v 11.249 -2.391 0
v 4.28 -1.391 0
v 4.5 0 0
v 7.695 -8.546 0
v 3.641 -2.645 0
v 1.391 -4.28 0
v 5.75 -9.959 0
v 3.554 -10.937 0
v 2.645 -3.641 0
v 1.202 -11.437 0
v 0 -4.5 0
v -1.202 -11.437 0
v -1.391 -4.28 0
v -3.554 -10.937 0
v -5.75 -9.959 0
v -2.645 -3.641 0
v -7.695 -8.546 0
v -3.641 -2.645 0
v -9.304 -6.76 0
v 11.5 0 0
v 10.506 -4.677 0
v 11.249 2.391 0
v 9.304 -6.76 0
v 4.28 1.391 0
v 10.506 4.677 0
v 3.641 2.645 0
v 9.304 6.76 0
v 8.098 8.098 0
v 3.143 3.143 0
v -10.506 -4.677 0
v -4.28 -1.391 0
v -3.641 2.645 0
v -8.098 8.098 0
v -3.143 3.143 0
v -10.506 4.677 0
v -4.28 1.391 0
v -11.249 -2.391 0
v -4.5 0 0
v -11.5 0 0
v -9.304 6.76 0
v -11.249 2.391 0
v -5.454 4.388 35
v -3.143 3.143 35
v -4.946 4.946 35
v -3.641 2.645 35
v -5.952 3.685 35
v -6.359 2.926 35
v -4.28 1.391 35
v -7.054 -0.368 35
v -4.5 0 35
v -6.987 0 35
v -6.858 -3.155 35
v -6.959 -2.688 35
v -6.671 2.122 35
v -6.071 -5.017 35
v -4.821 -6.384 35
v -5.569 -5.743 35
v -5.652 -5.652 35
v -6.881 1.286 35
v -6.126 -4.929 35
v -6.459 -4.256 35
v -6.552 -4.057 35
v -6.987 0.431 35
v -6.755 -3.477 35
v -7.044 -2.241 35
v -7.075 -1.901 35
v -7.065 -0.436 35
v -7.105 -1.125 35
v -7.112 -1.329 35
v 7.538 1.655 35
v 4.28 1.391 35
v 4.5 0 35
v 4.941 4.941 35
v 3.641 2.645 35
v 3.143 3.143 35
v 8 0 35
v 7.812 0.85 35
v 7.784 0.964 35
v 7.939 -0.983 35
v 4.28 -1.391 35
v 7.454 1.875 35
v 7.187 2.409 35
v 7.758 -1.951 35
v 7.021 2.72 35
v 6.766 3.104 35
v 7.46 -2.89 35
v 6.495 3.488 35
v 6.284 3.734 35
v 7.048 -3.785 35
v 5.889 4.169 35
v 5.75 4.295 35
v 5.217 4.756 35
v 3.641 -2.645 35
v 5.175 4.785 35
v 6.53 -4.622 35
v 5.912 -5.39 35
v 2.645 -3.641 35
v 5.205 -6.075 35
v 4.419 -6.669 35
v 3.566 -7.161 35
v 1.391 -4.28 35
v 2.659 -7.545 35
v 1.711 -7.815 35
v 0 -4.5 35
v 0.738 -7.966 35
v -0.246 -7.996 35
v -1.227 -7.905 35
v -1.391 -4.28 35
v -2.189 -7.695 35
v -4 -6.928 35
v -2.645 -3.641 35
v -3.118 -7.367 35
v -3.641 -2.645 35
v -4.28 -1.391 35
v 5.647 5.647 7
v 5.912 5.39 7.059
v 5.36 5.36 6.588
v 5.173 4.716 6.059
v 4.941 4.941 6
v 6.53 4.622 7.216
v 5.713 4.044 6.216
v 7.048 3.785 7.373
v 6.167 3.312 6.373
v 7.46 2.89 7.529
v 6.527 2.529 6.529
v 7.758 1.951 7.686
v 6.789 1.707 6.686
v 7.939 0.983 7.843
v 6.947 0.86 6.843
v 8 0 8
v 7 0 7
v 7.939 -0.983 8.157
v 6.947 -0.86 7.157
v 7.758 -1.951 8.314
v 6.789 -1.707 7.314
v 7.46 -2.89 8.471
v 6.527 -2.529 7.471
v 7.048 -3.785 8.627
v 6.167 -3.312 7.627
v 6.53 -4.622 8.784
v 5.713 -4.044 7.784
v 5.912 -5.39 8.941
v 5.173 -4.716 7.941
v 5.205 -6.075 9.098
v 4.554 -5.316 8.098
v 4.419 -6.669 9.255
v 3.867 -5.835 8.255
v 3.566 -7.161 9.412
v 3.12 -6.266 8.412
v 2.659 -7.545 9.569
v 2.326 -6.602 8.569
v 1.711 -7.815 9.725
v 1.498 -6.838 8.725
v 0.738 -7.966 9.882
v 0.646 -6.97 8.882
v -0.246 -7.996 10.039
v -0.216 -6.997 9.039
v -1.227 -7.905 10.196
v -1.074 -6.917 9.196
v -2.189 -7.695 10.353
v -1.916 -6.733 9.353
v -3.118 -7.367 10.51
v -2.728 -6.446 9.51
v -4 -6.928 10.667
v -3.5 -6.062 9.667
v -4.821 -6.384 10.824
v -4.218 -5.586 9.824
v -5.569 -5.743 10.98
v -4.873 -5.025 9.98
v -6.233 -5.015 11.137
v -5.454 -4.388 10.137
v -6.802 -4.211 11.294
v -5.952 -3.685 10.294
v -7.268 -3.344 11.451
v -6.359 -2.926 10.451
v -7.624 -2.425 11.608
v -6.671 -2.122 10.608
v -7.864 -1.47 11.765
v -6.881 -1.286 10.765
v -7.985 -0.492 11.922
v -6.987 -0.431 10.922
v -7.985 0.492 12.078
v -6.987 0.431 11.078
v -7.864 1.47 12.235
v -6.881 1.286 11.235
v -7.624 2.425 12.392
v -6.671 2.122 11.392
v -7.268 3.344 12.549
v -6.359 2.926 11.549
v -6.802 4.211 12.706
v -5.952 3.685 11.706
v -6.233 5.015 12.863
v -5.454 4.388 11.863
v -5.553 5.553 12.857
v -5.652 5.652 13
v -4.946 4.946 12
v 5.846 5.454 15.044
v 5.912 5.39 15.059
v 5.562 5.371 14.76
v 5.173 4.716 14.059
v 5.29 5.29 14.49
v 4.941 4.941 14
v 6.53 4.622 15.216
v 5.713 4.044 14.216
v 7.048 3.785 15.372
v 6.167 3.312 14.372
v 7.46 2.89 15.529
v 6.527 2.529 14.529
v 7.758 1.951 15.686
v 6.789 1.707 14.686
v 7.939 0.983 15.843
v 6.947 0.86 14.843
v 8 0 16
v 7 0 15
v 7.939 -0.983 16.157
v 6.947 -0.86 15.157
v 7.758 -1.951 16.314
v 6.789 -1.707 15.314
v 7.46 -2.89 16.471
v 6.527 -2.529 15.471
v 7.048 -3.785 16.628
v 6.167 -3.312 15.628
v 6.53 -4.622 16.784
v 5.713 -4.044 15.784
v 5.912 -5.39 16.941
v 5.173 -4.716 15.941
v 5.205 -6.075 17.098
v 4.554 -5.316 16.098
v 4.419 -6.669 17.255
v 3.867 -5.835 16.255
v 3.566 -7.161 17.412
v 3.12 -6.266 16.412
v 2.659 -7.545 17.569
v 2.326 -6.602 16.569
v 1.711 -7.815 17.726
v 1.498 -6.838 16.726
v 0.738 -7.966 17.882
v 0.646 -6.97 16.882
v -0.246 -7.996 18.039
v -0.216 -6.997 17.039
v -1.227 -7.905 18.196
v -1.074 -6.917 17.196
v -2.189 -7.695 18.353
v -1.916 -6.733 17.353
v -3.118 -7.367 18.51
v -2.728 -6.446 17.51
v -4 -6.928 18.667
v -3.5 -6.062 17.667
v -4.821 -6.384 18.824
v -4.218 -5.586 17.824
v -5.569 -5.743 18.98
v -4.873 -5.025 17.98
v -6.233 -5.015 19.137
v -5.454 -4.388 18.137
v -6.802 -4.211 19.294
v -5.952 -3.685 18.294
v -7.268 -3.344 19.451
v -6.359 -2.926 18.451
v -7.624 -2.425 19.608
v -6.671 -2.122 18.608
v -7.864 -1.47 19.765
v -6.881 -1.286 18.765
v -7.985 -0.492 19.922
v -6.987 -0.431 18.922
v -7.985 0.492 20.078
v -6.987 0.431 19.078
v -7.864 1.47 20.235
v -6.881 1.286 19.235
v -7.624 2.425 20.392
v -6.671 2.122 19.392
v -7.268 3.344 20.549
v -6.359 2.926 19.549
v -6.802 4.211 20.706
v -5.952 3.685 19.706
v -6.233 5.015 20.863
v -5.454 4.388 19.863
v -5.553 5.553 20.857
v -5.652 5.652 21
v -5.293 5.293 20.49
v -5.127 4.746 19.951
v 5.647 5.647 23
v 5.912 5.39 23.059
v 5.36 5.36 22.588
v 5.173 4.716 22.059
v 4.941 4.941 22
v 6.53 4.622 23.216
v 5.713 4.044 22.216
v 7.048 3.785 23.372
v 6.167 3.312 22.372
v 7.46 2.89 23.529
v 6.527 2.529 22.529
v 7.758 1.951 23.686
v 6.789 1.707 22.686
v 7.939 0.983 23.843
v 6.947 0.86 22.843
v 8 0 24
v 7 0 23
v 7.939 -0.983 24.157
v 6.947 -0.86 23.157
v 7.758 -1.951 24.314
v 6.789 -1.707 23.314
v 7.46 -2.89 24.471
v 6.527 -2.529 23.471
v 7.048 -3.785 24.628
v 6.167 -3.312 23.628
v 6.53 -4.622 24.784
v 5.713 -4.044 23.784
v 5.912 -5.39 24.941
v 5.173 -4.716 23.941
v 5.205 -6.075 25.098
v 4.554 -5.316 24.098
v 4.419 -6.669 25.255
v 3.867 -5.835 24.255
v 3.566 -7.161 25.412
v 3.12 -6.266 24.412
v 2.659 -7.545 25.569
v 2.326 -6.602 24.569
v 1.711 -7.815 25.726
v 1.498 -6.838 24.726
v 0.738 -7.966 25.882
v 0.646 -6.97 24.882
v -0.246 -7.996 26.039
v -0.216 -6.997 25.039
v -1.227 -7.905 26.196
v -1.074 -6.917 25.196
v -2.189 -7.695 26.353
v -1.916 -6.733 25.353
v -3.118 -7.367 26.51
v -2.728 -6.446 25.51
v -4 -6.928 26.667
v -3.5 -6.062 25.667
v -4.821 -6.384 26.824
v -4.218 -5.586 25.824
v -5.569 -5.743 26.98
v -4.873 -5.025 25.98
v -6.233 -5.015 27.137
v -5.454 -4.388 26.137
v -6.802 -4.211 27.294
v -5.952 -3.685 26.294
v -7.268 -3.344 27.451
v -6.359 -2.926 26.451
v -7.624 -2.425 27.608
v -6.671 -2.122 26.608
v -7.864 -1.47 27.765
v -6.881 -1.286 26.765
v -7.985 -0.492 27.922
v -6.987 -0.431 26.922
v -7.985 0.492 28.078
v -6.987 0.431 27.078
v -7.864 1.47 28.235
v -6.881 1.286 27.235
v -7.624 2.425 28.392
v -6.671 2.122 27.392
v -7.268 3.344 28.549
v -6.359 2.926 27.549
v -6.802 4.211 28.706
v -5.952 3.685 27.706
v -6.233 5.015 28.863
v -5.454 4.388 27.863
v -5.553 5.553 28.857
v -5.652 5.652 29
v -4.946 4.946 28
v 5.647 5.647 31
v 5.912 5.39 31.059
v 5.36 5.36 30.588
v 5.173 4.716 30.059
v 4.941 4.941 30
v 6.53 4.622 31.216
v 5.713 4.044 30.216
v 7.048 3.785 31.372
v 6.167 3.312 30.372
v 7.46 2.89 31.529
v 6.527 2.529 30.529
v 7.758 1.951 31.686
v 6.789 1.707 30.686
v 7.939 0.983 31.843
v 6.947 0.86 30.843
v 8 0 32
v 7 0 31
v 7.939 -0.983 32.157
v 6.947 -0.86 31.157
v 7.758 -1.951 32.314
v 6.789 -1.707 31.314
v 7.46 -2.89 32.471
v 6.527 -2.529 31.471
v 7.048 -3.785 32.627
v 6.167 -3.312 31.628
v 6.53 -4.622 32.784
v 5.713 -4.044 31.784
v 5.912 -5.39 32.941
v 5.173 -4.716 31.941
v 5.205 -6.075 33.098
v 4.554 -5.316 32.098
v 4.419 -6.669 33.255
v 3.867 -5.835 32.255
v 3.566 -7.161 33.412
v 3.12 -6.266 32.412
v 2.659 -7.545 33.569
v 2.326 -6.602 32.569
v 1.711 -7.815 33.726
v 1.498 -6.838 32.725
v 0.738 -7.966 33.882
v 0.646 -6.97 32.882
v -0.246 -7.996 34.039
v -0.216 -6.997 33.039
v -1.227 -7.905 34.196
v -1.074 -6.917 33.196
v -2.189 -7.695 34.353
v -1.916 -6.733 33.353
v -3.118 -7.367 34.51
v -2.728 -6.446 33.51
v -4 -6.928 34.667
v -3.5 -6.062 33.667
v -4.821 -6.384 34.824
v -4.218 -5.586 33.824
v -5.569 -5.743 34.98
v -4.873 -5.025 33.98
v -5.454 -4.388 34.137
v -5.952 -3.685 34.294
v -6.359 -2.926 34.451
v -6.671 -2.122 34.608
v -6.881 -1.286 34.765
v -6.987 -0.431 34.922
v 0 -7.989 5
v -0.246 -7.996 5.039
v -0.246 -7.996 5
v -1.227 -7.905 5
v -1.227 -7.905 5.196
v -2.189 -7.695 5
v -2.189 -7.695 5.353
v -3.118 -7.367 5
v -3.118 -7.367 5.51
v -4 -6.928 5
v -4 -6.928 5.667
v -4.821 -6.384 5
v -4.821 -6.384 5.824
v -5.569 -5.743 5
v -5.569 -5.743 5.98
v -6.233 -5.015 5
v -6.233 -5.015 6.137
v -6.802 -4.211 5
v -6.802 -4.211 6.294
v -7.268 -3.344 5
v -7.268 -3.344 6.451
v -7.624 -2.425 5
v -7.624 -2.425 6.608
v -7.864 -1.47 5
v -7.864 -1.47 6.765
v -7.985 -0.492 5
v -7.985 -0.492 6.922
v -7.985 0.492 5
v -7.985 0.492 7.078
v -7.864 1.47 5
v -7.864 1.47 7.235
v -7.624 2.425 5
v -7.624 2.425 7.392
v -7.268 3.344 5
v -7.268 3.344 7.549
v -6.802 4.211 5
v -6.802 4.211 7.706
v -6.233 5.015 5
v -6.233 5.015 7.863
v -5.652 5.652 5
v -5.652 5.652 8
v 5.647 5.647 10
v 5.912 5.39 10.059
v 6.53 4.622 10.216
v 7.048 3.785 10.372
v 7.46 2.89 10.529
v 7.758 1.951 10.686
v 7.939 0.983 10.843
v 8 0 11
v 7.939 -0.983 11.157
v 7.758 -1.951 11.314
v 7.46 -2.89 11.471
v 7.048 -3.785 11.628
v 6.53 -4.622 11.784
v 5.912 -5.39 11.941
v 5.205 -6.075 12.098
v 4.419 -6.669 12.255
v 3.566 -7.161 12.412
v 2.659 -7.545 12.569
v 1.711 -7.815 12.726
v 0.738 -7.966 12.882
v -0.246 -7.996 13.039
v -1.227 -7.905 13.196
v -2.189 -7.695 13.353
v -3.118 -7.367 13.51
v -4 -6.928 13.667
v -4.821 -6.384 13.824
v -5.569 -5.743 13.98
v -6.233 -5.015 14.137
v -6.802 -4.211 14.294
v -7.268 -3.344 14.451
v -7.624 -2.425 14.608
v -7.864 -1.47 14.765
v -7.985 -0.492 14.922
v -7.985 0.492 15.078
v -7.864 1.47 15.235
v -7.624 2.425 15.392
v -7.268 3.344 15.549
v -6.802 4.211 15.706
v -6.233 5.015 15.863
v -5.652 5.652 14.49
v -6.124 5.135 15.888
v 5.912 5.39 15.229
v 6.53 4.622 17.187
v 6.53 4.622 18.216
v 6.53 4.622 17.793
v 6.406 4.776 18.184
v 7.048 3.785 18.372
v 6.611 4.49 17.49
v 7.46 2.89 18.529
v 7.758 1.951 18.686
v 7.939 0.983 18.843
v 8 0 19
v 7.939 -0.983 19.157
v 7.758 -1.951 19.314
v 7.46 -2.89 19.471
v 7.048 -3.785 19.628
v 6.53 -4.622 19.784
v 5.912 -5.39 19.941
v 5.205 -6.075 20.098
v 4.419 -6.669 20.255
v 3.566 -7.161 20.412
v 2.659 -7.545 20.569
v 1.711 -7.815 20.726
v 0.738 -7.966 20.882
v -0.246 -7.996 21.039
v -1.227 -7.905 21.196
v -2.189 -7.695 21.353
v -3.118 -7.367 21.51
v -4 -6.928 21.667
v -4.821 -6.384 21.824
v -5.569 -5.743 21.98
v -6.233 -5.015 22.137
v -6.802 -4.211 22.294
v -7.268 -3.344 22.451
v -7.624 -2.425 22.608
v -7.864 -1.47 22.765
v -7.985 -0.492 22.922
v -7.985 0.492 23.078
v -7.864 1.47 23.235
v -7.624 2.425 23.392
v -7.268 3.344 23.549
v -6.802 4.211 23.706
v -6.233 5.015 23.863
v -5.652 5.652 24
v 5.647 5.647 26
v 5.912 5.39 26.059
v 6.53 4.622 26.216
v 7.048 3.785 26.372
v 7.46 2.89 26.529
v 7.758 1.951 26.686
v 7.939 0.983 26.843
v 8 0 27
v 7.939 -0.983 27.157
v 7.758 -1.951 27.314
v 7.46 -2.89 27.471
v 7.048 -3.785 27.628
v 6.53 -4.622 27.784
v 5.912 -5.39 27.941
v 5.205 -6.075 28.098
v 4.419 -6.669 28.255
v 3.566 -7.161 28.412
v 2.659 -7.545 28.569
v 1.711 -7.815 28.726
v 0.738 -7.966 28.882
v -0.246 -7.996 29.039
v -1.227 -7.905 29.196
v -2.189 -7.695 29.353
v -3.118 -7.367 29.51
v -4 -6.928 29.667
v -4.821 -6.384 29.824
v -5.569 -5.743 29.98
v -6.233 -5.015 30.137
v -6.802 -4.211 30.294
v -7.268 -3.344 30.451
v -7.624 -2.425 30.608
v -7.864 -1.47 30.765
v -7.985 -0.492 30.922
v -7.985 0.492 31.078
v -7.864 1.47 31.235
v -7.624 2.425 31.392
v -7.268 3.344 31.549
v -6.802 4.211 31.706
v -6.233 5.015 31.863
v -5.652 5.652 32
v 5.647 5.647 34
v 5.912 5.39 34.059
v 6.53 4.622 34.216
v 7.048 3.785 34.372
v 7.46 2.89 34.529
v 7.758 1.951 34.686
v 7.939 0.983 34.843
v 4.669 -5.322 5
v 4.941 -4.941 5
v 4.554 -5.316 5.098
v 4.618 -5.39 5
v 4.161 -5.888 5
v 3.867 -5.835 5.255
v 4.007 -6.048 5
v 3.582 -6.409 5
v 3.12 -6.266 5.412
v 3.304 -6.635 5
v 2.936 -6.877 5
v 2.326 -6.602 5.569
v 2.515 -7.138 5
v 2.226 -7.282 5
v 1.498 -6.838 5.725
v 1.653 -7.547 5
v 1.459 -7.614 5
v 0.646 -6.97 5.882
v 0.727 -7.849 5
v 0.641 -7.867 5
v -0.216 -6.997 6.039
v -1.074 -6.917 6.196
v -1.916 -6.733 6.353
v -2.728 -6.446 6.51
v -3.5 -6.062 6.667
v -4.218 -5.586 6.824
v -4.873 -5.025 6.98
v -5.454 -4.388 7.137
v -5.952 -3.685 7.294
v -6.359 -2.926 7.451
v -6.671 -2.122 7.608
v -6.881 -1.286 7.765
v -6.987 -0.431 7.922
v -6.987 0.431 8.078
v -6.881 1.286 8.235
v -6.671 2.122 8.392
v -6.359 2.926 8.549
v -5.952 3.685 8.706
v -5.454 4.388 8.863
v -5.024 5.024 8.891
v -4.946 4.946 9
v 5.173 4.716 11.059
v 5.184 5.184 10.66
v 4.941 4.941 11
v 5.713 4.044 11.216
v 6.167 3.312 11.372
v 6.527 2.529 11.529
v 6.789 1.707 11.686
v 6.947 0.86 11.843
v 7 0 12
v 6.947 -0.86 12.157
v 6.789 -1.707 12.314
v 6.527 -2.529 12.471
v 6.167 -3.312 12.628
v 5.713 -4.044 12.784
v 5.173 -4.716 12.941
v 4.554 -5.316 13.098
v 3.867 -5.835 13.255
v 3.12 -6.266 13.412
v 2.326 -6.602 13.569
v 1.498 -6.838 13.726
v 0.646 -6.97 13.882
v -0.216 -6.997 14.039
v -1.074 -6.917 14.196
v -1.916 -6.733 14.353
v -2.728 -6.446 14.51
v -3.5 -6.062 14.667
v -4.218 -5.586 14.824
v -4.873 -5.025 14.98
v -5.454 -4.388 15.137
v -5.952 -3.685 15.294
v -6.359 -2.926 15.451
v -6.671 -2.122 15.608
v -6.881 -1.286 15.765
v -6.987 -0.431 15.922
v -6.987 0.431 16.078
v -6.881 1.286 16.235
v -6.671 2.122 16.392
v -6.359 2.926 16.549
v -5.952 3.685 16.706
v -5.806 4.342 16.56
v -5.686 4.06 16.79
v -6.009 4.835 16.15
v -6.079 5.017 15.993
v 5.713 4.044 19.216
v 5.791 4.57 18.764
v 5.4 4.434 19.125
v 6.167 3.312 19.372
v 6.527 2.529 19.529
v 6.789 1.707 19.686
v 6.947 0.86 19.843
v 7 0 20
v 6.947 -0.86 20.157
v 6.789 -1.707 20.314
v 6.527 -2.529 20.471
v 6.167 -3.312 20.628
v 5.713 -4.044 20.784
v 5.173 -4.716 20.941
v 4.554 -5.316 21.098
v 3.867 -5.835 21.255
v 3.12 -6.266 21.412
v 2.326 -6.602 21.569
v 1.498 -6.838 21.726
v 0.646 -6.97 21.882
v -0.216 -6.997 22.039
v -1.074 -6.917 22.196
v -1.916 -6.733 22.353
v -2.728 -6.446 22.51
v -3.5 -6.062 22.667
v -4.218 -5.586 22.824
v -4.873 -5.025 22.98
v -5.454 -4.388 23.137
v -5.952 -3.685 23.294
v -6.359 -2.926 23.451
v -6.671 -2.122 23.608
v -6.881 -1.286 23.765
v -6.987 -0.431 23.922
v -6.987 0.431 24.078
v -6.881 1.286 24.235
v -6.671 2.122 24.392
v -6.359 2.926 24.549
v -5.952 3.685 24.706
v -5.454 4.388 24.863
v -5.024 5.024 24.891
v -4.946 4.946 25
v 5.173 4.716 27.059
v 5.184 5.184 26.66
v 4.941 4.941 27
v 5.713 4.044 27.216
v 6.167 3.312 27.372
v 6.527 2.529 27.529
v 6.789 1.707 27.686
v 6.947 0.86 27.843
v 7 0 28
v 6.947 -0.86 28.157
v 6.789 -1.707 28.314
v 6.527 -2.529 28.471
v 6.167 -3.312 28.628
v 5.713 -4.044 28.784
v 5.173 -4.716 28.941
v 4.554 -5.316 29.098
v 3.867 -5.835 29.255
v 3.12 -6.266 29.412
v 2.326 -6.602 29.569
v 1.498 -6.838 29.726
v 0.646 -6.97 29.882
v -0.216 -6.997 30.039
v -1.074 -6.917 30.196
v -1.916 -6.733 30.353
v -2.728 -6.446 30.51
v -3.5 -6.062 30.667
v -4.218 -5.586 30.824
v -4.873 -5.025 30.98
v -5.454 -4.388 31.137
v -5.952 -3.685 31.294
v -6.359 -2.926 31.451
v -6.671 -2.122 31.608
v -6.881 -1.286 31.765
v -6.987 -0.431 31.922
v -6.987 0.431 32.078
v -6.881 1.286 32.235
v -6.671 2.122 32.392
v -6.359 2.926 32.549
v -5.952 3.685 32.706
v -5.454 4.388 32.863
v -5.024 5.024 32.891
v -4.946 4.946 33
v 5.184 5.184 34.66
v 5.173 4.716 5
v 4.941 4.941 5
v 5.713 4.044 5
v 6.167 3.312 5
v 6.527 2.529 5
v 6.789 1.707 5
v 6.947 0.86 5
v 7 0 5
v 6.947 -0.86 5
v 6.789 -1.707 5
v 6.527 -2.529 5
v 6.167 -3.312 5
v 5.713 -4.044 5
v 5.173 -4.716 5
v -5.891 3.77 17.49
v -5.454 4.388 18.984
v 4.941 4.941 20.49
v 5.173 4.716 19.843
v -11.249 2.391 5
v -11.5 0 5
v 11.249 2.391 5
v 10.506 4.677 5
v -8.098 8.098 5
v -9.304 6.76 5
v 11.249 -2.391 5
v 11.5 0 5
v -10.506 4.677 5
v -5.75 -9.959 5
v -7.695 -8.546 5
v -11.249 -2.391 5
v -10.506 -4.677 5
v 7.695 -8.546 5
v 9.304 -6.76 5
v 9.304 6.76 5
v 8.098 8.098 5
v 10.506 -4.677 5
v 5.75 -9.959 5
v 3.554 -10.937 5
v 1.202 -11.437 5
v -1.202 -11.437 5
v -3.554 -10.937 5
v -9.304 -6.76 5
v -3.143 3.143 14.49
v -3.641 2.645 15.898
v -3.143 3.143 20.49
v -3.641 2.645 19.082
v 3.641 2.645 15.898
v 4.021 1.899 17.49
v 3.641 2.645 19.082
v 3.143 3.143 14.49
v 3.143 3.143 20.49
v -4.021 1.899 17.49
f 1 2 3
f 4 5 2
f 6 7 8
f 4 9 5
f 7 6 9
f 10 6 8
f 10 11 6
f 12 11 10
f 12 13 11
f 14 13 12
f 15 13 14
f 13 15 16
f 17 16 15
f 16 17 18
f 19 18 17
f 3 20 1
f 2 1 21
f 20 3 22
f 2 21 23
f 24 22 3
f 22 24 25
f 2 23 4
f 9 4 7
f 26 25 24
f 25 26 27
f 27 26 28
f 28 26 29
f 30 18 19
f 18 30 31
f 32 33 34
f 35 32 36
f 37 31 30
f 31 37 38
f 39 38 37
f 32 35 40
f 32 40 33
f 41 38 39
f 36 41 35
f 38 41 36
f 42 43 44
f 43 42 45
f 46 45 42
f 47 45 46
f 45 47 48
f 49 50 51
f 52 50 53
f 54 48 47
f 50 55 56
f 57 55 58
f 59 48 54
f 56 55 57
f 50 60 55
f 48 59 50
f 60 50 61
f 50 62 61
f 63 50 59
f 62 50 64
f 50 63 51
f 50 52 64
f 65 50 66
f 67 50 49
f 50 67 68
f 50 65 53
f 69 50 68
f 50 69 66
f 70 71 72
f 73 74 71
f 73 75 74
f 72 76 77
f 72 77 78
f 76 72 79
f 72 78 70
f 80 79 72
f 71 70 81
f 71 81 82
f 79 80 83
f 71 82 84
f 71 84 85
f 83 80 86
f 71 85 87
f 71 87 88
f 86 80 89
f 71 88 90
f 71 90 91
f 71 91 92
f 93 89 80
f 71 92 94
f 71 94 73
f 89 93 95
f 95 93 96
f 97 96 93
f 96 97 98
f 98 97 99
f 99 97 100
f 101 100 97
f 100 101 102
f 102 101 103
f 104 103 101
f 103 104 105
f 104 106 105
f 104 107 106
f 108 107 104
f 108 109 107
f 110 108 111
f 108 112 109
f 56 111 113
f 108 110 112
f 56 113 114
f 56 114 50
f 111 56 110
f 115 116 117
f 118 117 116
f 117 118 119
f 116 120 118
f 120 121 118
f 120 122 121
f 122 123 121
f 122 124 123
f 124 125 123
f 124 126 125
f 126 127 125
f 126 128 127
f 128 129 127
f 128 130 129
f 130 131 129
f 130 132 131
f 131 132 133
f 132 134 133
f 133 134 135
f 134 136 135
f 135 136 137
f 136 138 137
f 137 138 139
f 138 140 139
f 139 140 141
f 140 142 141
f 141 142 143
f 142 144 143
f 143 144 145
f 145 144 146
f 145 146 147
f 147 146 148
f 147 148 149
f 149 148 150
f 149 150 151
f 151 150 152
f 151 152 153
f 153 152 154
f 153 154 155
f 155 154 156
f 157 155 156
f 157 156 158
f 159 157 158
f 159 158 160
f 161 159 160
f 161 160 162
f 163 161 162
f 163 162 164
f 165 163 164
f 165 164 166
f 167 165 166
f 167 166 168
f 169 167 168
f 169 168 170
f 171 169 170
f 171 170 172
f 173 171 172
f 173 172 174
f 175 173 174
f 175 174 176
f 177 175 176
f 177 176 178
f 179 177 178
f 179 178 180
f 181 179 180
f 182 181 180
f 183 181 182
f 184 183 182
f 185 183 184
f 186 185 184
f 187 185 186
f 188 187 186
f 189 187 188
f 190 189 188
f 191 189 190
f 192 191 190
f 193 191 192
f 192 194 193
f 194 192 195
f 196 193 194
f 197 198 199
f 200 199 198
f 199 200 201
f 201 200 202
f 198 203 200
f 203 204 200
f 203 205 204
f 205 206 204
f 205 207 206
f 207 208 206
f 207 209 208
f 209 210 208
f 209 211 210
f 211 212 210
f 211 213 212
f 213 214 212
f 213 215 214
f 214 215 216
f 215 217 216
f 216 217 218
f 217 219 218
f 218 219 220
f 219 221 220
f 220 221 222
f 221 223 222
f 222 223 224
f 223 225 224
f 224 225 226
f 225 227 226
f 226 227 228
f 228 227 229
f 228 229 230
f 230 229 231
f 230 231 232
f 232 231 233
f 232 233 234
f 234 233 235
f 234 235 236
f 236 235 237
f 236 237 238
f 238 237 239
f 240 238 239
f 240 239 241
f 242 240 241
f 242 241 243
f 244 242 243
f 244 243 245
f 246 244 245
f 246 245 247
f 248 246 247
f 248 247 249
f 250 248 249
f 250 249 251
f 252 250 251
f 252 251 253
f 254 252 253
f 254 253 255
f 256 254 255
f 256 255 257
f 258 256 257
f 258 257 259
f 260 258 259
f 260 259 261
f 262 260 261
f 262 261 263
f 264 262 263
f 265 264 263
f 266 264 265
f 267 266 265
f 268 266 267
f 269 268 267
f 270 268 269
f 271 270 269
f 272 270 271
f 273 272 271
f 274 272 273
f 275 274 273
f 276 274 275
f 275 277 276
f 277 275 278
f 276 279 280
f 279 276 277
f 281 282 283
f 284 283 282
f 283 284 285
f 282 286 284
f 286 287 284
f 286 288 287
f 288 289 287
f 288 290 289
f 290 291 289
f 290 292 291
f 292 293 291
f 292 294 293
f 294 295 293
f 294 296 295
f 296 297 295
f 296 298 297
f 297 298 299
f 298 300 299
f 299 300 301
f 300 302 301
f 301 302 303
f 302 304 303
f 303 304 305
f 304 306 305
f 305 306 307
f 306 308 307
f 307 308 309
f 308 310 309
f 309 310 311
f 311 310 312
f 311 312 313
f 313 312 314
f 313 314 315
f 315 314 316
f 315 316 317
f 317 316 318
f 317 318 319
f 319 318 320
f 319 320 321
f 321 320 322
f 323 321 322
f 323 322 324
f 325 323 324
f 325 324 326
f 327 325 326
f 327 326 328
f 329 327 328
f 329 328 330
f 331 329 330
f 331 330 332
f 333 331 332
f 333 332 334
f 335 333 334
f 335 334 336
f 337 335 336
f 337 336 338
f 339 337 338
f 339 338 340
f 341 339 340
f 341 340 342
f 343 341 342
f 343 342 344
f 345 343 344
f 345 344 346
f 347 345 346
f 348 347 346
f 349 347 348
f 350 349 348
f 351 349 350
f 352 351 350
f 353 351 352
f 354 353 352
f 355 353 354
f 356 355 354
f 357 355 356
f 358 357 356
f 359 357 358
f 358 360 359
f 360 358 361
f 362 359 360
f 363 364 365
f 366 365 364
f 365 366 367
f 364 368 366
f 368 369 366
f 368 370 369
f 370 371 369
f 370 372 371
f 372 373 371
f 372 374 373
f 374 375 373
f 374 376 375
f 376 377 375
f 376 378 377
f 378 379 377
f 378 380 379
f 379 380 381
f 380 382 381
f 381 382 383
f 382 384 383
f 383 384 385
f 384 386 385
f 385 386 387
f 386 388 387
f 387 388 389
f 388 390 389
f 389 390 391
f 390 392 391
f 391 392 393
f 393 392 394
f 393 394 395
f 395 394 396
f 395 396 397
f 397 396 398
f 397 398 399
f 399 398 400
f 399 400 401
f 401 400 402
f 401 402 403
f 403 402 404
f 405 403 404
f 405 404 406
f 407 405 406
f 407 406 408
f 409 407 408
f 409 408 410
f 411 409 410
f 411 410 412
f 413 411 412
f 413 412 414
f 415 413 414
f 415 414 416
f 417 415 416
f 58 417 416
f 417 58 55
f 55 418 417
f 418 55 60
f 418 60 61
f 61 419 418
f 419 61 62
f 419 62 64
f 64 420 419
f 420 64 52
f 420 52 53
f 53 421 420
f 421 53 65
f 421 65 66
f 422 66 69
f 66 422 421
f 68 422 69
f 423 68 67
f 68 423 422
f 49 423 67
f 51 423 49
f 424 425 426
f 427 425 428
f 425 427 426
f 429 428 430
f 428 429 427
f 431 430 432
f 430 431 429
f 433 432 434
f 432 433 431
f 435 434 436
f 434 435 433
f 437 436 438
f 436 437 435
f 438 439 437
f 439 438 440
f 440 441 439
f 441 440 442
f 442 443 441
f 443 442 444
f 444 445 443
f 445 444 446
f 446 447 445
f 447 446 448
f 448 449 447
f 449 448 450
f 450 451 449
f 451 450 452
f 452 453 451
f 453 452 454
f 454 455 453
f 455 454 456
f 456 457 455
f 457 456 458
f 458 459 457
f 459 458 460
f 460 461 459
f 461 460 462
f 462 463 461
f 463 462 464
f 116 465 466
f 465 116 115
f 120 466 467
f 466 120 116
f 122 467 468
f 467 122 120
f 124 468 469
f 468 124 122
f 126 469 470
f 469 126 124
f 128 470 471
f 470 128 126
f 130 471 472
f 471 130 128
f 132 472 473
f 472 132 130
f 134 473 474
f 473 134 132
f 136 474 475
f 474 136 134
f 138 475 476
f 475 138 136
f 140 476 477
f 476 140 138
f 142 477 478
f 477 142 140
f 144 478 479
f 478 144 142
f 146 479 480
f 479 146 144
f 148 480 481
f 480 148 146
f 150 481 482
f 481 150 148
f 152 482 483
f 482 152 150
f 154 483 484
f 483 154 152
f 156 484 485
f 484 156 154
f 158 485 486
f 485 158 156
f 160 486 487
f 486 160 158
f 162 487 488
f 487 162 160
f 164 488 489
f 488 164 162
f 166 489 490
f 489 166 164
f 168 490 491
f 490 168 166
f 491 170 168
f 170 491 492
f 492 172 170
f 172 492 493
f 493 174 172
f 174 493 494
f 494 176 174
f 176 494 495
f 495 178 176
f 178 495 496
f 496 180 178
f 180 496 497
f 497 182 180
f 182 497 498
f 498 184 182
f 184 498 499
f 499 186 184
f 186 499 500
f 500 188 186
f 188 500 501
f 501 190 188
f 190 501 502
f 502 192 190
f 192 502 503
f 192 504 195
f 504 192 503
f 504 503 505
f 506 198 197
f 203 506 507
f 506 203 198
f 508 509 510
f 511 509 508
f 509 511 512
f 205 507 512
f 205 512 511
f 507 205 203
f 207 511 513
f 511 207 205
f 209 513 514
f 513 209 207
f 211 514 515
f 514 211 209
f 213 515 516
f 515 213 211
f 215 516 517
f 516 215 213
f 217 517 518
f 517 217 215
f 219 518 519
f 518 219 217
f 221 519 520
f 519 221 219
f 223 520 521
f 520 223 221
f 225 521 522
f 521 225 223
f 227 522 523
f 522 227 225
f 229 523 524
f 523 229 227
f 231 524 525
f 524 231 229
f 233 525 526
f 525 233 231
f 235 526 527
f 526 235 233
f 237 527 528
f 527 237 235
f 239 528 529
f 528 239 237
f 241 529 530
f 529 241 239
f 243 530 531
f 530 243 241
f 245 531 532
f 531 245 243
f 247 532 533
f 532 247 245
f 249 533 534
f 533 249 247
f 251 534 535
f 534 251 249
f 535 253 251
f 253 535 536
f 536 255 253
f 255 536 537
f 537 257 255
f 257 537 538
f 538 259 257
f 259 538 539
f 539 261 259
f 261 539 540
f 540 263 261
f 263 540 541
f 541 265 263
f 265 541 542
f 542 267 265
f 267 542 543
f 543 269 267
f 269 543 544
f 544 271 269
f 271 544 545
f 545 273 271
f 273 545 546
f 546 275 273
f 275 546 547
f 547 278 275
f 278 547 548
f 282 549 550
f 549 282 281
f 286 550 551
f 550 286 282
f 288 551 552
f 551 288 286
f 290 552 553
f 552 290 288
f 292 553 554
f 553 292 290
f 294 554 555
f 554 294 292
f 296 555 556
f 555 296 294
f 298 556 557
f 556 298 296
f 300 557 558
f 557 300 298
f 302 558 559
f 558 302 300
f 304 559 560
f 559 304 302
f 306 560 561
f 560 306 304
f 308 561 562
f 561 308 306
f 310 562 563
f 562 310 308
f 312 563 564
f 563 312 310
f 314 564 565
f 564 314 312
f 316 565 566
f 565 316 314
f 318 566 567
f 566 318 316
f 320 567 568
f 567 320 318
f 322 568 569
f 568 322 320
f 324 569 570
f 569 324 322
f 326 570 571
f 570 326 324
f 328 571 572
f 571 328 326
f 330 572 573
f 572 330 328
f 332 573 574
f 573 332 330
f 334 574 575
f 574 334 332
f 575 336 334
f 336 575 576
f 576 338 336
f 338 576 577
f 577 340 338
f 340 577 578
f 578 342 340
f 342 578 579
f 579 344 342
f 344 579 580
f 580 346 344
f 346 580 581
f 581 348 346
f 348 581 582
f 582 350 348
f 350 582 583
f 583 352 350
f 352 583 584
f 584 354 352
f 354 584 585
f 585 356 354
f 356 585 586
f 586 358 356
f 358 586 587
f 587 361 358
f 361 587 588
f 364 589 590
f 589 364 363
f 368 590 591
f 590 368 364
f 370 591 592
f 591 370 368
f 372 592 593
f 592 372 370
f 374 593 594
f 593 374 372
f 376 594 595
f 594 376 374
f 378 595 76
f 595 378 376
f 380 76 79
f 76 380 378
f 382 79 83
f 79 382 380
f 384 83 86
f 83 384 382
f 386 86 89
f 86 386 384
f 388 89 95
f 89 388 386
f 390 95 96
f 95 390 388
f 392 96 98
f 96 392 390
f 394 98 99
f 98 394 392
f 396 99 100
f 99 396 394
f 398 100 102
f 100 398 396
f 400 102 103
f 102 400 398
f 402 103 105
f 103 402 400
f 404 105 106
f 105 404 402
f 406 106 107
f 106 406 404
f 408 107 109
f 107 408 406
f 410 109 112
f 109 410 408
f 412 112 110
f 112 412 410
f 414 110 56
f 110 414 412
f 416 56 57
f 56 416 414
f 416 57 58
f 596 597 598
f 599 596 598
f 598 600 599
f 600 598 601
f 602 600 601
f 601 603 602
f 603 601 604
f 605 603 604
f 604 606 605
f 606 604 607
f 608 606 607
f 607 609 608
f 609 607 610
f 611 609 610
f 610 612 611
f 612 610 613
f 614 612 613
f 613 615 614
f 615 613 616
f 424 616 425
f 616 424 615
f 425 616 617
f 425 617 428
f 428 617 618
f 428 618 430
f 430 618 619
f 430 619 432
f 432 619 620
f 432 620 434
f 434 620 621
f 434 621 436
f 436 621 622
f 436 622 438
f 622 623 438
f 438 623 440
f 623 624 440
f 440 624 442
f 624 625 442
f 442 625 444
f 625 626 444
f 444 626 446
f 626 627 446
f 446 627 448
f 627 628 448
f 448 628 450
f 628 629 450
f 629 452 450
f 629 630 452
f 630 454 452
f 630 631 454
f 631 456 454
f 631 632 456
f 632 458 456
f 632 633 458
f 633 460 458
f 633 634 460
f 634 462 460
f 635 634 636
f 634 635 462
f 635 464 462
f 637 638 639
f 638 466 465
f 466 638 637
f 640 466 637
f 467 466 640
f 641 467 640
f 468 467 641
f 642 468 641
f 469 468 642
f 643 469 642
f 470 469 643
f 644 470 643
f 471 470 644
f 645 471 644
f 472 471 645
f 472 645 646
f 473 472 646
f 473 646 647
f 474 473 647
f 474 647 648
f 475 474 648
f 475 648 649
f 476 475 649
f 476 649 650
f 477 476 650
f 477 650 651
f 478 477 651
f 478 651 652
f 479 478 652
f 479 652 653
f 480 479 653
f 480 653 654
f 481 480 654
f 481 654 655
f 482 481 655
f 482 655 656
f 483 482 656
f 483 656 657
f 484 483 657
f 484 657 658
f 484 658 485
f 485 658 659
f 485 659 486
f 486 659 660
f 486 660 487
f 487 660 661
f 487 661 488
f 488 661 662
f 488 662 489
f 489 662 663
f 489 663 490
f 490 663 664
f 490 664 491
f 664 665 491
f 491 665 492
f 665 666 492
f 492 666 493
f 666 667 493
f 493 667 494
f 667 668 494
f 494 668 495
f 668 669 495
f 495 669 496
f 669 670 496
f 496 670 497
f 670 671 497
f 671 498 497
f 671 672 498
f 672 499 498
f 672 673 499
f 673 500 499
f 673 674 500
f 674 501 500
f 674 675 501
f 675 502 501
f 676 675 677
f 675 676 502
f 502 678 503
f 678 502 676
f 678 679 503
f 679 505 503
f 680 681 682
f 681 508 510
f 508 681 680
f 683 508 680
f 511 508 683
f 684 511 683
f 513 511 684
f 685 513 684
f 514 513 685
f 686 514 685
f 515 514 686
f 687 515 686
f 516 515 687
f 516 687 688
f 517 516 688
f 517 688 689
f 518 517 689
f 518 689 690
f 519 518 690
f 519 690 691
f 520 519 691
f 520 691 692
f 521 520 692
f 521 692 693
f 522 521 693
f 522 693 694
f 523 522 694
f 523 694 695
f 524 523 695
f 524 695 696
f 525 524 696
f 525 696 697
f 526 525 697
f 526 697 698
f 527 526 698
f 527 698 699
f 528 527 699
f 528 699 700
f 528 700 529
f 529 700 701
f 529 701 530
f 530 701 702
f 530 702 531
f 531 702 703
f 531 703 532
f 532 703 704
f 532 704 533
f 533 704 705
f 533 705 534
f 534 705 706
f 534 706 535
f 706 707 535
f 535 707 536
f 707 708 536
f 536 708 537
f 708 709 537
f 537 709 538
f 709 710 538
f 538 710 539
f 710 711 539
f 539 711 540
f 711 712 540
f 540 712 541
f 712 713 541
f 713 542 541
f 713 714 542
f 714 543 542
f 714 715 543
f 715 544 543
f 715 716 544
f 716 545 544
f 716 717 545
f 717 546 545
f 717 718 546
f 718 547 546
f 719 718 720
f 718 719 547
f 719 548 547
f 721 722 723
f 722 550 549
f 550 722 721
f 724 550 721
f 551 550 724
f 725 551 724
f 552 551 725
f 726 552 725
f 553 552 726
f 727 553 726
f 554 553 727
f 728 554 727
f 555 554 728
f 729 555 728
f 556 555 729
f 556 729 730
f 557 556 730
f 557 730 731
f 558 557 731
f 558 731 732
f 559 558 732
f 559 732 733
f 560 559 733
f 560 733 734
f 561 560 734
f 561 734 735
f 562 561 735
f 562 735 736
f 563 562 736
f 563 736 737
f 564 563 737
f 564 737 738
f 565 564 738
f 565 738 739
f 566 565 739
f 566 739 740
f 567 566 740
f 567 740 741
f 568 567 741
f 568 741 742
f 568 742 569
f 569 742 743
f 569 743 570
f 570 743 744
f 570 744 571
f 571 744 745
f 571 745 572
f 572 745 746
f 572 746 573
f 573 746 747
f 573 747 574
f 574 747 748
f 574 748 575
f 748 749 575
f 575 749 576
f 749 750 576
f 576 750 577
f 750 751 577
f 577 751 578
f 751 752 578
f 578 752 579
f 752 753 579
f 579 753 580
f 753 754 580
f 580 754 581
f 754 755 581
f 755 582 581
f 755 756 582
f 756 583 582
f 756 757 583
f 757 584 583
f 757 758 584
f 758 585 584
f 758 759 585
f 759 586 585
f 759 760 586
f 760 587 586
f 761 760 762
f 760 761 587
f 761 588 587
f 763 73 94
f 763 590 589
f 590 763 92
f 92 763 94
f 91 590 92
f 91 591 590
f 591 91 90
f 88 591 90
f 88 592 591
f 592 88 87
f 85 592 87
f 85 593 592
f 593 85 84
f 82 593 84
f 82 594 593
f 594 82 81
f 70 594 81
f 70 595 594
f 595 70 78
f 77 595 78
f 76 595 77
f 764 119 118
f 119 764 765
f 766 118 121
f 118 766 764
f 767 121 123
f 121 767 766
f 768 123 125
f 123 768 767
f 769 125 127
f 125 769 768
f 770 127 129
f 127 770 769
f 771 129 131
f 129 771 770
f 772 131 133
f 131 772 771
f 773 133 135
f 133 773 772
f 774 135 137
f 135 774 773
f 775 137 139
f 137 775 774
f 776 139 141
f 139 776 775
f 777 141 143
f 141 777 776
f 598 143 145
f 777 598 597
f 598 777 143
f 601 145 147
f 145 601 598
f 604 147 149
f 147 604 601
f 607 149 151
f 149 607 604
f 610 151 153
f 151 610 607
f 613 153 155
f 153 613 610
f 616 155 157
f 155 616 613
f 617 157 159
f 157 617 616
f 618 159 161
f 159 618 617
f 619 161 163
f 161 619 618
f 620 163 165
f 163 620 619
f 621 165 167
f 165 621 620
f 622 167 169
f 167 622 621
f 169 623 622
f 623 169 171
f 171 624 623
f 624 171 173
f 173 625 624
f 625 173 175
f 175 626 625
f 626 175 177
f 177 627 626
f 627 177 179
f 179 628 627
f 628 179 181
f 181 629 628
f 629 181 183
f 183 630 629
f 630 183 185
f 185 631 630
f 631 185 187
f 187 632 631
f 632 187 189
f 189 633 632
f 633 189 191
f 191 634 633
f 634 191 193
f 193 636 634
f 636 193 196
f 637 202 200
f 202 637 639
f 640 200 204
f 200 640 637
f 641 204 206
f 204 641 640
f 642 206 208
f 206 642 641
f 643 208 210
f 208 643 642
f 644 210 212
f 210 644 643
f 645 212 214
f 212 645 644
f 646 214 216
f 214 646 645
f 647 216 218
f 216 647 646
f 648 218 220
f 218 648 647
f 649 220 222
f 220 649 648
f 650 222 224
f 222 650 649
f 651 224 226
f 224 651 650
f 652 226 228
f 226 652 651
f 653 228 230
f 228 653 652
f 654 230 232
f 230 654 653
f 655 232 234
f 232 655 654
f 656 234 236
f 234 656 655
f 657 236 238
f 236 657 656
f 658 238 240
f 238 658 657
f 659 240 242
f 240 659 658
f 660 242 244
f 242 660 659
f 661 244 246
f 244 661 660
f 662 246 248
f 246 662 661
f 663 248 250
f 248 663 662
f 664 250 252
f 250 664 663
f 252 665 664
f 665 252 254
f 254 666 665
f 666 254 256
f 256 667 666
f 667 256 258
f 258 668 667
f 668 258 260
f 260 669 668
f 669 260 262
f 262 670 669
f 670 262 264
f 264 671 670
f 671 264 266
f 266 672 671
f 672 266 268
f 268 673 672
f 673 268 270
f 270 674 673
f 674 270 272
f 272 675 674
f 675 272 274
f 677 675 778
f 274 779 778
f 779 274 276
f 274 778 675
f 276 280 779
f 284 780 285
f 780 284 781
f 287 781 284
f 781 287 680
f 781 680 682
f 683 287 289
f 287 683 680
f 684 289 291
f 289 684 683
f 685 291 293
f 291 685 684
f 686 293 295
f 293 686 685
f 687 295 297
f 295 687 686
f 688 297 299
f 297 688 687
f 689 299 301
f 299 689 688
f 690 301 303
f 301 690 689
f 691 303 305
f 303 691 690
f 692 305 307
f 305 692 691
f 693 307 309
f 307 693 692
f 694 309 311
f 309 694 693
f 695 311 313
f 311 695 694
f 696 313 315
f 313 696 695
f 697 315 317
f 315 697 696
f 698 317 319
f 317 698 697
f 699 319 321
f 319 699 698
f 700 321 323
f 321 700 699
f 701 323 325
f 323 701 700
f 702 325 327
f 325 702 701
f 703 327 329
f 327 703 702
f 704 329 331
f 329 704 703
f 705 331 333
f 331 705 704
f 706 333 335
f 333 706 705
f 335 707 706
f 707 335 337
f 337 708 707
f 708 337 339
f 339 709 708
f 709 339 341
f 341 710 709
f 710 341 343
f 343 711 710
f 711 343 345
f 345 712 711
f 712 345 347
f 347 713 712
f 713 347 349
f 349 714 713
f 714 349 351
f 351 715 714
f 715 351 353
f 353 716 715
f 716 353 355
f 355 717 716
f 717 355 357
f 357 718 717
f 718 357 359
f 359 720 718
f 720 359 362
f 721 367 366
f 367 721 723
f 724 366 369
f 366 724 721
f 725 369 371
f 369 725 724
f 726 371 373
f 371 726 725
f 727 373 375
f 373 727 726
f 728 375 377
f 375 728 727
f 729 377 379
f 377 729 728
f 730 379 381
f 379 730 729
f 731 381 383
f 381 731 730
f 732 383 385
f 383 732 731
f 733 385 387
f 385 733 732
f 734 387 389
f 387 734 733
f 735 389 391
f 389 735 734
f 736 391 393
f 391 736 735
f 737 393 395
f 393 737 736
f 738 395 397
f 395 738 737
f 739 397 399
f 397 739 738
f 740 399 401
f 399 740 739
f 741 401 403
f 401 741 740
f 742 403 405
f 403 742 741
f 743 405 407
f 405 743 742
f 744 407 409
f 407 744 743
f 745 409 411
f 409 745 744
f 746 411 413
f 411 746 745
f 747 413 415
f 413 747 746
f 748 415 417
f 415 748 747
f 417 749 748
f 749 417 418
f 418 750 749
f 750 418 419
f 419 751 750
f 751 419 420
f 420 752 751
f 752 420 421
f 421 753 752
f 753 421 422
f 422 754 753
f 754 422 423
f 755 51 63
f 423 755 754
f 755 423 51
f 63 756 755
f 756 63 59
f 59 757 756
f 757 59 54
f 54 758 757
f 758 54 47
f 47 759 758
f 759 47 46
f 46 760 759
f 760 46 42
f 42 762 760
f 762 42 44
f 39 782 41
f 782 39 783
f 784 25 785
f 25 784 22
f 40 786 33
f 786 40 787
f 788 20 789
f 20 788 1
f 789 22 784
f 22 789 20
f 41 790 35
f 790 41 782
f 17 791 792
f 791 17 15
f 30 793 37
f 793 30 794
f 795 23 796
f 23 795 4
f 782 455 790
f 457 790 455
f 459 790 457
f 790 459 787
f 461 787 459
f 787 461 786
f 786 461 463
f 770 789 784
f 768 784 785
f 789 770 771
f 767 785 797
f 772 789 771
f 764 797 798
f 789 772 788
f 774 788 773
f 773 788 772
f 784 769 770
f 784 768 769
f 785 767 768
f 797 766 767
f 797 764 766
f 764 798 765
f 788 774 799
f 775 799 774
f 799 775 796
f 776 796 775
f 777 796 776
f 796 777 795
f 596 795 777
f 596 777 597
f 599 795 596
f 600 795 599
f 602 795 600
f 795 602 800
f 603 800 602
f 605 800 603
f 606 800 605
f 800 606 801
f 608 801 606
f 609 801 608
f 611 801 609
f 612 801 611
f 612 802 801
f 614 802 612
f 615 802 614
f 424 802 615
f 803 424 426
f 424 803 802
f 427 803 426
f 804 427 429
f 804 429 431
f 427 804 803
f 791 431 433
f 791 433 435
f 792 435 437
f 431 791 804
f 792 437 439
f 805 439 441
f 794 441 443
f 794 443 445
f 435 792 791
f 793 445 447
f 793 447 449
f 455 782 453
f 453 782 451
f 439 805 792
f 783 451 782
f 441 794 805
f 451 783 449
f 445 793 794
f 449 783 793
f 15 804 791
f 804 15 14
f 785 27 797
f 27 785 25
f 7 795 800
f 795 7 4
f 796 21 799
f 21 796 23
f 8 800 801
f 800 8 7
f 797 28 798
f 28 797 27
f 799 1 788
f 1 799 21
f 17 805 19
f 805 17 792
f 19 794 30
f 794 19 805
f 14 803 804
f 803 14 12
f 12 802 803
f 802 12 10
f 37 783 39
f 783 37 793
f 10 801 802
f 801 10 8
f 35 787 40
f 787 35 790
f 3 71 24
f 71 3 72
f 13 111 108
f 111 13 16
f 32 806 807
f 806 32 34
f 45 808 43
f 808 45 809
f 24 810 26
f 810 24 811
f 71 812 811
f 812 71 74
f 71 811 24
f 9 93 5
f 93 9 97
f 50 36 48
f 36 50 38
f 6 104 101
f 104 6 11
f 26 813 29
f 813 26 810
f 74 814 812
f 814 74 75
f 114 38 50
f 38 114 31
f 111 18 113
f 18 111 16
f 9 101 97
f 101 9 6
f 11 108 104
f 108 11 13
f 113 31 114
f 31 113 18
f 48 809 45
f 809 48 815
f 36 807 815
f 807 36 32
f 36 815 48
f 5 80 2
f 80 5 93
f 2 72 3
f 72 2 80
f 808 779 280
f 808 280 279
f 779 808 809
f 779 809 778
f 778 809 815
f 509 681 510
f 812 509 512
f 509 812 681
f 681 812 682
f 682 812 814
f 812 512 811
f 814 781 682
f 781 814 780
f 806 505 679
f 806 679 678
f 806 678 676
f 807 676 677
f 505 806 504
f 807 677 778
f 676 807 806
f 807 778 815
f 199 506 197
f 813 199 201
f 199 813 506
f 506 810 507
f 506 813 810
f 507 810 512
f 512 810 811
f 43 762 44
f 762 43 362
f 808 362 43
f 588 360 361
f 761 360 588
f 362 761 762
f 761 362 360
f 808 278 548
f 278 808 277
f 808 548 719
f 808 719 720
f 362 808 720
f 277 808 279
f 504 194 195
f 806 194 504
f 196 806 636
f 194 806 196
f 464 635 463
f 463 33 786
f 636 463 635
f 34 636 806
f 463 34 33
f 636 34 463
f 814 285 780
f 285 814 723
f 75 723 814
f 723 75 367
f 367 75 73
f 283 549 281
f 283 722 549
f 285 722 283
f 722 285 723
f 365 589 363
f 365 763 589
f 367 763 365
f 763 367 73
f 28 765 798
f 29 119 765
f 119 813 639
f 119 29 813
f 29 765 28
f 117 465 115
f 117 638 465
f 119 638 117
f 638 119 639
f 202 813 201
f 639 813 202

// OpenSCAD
// Copyright (c) 2026 Chris Lee and contributors.
// Licensed under the MIT license. See LICENSE file in the project root for details.

include <plug.scad>

plug_left();
